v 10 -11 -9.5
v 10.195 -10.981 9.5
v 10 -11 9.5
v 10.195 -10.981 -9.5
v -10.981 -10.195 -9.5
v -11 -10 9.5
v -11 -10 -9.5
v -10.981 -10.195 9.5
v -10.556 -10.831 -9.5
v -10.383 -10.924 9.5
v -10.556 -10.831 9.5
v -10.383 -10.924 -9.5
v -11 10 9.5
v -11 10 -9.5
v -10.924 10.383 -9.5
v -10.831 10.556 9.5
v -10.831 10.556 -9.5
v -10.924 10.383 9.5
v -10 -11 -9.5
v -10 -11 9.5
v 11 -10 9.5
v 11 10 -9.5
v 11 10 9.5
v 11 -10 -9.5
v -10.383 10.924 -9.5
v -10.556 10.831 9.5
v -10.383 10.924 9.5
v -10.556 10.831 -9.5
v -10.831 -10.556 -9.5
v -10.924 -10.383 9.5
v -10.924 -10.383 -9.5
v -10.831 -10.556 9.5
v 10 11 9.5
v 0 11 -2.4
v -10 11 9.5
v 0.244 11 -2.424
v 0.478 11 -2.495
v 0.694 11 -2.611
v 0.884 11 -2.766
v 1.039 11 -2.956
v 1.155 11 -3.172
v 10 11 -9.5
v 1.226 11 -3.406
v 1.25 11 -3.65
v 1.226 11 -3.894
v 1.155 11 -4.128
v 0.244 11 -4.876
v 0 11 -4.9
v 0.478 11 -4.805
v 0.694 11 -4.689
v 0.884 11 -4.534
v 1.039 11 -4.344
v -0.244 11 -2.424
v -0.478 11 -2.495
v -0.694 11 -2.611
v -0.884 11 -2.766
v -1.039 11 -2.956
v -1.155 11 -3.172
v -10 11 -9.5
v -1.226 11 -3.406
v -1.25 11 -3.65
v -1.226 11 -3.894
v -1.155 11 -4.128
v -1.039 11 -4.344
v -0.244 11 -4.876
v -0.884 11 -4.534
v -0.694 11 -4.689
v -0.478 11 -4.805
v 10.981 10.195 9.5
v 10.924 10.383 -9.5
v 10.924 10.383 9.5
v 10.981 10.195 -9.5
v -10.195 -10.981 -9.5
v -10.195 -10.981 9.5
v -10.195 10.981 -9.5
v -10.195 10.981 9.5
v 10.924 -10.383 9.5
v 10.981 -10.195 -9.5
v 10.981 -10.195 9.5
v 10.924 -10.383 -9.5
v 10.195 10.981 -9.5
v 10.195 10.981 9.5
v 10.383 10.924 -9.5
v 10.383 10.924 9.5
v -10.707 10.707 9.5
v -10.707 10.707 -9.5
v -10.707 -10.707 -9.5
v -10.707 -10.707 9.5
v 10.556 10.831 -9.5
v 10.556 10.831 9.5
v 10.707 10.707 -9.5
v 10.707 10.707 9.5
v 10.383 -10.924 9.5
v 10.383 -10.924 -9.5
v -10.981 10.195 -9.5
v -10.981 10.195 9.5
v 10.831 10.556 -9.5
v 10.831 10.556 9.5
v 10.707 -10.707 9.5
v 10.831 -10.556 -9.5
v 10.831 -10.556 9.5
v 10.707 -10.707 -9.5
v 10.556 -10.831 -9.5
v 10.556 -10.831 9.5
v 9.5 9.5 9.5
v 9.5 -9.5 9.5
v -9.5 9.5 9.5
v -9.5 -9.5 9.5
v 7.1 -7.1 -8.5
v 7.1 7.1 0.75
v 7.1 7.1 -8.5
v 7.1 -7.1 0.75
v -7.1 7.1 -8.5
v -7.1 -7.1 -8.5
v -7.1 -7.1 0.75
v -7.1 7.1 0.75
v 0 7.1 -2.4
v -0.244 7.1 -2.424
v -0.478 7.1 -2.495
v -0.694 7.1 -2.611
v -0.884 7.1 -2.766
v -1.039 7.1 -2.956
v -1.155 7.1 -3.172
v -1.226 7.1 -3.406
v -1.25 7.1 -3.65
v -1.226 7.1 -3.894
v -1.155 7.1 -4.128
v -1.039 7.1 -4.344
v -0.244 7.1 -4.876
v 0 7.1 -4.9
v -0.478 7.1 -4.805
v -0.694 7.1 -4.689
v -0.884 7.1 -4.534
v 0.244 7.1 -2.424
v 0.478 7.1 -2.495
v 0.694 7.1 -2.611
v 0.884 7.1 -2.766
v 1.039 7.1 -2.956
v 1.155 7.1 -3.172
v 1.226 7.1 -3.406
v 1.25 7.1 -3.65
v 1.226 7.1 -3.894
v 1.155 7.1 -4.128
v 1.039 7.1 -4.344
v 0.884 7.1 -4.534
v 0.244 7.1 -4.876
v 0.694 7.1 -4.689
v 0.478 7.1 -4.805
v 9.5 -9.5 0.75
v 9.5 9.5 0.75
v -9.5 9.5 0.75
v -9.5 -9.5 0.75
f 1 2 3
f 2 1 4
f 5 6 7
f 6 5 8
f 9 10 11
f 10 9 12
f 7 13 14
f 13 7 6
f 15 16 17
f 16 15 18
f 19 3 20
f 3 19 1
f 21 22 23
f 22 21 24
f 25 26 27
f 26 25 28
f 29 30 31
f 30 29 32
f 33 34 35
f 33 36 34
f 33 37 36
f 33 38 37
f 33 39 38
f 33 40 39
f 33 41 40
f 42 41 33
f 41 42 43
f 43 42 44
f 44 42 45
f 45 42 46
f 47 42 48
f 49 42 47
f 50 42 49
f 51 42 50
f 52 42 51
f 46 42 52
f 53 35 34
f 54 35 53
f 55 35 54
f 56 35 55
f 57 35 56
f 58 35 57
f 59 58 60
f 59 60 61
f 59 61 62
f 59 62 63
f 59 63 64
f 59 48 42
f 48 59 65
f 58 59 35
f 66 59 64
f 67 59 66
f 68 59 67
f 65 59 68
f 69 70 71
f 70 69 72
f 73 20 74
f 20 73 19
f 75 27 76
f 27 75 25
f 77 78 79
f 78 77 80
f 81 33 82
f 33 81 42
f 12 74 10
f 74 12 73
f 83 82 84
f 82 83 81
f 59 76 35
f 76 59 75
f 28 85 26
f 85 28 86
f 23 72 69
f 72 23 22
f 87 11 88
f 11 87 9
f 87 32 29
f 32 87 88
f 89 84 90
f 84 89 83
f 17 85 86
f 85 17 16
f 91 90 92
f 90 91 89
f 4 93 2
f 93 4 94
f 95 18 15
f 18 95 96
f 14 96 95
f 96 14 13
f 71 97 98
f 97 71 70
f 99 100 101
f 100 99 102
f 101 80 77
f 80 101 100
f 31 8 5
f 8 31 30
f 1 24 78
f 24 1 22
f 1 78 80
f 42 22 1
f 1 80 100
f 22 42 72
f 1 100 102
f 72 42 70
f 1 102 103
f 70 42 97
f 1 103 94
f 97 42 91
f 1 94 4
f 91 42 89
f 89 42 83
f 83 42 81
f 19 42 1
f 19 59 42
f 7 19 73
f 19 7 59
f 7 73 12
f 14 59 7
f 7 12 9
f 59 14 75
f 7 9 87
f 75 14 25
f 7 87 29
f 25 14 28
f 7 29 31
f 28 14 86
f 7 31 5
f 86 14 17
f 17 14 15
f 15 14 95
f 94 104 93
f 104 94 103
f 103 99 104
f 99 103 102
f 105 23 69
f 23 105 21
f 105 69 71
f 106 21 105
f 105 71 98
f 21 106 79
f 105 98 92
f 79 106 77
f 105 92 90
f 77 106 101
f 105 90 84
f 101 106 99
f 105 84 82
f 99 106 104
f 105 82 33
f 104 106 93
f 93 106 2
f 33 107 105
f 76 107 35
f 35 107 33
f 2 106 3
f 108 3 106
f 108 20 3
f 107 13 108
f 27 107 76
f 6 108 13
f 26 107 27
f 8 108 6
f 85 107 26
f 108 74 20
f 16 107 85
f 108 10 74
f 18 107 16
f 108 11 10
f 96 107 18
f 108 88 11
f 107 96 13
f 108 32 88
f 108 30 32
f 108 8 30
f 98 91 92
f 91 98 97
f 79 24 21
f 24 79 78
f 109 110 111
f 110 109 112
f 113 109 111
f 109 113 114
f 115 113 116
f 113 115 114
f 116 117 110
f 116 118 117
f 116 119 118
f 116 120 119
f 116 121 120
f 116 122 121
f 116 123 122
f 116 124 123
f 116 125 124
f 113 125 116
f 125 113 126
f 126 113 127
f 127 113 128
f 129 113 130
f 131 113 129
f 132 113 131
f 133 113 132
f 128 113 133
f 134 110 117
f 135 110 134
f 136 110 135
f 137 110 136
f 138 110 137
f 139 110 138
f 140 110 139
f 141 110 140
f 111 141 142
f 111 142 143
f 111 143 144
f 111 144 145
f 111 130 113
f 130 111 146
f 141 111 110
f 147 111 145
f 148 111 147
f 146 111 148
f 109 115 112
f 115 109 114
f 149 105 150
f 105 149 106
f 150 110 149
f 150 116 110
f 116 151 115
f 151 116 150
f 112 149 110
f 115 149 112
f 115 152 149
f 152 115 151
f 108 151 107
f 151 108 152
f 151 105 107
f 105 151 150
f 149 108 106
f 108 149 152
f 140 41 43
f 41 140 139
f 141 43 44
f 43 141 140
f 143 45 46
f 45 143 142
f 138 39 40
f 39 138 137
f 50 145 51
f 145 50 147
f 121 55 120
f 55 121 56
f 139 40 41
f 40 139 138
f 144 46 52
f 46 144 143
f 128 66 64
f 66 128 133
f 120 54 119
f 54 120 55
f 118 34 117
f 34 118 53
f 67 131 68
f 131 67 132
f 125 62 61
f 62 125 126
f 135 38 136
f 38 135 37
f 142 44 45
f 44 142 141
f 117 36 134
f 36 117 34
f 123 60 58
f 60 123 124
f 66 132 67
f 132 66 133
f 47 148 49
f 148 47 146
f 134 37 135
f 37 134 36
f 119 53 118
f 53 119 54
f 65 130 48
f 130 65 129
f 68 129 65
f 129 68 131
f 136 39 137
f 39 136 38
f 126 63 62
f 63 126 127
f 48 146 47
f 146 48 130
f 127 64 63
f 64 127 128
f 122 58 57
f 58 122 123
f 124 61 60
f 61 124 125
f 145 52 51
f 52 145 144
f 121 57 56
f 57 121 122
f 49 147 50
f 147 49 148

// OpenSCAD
difference(){
    linear_extrude(12+2.5+4.5,center=true)
    offset(1,$fn=32)
square([20,20],center=true);
translate([0,0,1])
cube([14.2,14.2,12+2.5+4.5],center=true);

translate([0,0,14.5-2.5-4])
cube([19,19,12+2.5],center=true);

translate([0,10,-4.75+1.1])
rotate([90,0,0])
cylinder(d=2.5,h=10,$fn=32,center=true);
}
